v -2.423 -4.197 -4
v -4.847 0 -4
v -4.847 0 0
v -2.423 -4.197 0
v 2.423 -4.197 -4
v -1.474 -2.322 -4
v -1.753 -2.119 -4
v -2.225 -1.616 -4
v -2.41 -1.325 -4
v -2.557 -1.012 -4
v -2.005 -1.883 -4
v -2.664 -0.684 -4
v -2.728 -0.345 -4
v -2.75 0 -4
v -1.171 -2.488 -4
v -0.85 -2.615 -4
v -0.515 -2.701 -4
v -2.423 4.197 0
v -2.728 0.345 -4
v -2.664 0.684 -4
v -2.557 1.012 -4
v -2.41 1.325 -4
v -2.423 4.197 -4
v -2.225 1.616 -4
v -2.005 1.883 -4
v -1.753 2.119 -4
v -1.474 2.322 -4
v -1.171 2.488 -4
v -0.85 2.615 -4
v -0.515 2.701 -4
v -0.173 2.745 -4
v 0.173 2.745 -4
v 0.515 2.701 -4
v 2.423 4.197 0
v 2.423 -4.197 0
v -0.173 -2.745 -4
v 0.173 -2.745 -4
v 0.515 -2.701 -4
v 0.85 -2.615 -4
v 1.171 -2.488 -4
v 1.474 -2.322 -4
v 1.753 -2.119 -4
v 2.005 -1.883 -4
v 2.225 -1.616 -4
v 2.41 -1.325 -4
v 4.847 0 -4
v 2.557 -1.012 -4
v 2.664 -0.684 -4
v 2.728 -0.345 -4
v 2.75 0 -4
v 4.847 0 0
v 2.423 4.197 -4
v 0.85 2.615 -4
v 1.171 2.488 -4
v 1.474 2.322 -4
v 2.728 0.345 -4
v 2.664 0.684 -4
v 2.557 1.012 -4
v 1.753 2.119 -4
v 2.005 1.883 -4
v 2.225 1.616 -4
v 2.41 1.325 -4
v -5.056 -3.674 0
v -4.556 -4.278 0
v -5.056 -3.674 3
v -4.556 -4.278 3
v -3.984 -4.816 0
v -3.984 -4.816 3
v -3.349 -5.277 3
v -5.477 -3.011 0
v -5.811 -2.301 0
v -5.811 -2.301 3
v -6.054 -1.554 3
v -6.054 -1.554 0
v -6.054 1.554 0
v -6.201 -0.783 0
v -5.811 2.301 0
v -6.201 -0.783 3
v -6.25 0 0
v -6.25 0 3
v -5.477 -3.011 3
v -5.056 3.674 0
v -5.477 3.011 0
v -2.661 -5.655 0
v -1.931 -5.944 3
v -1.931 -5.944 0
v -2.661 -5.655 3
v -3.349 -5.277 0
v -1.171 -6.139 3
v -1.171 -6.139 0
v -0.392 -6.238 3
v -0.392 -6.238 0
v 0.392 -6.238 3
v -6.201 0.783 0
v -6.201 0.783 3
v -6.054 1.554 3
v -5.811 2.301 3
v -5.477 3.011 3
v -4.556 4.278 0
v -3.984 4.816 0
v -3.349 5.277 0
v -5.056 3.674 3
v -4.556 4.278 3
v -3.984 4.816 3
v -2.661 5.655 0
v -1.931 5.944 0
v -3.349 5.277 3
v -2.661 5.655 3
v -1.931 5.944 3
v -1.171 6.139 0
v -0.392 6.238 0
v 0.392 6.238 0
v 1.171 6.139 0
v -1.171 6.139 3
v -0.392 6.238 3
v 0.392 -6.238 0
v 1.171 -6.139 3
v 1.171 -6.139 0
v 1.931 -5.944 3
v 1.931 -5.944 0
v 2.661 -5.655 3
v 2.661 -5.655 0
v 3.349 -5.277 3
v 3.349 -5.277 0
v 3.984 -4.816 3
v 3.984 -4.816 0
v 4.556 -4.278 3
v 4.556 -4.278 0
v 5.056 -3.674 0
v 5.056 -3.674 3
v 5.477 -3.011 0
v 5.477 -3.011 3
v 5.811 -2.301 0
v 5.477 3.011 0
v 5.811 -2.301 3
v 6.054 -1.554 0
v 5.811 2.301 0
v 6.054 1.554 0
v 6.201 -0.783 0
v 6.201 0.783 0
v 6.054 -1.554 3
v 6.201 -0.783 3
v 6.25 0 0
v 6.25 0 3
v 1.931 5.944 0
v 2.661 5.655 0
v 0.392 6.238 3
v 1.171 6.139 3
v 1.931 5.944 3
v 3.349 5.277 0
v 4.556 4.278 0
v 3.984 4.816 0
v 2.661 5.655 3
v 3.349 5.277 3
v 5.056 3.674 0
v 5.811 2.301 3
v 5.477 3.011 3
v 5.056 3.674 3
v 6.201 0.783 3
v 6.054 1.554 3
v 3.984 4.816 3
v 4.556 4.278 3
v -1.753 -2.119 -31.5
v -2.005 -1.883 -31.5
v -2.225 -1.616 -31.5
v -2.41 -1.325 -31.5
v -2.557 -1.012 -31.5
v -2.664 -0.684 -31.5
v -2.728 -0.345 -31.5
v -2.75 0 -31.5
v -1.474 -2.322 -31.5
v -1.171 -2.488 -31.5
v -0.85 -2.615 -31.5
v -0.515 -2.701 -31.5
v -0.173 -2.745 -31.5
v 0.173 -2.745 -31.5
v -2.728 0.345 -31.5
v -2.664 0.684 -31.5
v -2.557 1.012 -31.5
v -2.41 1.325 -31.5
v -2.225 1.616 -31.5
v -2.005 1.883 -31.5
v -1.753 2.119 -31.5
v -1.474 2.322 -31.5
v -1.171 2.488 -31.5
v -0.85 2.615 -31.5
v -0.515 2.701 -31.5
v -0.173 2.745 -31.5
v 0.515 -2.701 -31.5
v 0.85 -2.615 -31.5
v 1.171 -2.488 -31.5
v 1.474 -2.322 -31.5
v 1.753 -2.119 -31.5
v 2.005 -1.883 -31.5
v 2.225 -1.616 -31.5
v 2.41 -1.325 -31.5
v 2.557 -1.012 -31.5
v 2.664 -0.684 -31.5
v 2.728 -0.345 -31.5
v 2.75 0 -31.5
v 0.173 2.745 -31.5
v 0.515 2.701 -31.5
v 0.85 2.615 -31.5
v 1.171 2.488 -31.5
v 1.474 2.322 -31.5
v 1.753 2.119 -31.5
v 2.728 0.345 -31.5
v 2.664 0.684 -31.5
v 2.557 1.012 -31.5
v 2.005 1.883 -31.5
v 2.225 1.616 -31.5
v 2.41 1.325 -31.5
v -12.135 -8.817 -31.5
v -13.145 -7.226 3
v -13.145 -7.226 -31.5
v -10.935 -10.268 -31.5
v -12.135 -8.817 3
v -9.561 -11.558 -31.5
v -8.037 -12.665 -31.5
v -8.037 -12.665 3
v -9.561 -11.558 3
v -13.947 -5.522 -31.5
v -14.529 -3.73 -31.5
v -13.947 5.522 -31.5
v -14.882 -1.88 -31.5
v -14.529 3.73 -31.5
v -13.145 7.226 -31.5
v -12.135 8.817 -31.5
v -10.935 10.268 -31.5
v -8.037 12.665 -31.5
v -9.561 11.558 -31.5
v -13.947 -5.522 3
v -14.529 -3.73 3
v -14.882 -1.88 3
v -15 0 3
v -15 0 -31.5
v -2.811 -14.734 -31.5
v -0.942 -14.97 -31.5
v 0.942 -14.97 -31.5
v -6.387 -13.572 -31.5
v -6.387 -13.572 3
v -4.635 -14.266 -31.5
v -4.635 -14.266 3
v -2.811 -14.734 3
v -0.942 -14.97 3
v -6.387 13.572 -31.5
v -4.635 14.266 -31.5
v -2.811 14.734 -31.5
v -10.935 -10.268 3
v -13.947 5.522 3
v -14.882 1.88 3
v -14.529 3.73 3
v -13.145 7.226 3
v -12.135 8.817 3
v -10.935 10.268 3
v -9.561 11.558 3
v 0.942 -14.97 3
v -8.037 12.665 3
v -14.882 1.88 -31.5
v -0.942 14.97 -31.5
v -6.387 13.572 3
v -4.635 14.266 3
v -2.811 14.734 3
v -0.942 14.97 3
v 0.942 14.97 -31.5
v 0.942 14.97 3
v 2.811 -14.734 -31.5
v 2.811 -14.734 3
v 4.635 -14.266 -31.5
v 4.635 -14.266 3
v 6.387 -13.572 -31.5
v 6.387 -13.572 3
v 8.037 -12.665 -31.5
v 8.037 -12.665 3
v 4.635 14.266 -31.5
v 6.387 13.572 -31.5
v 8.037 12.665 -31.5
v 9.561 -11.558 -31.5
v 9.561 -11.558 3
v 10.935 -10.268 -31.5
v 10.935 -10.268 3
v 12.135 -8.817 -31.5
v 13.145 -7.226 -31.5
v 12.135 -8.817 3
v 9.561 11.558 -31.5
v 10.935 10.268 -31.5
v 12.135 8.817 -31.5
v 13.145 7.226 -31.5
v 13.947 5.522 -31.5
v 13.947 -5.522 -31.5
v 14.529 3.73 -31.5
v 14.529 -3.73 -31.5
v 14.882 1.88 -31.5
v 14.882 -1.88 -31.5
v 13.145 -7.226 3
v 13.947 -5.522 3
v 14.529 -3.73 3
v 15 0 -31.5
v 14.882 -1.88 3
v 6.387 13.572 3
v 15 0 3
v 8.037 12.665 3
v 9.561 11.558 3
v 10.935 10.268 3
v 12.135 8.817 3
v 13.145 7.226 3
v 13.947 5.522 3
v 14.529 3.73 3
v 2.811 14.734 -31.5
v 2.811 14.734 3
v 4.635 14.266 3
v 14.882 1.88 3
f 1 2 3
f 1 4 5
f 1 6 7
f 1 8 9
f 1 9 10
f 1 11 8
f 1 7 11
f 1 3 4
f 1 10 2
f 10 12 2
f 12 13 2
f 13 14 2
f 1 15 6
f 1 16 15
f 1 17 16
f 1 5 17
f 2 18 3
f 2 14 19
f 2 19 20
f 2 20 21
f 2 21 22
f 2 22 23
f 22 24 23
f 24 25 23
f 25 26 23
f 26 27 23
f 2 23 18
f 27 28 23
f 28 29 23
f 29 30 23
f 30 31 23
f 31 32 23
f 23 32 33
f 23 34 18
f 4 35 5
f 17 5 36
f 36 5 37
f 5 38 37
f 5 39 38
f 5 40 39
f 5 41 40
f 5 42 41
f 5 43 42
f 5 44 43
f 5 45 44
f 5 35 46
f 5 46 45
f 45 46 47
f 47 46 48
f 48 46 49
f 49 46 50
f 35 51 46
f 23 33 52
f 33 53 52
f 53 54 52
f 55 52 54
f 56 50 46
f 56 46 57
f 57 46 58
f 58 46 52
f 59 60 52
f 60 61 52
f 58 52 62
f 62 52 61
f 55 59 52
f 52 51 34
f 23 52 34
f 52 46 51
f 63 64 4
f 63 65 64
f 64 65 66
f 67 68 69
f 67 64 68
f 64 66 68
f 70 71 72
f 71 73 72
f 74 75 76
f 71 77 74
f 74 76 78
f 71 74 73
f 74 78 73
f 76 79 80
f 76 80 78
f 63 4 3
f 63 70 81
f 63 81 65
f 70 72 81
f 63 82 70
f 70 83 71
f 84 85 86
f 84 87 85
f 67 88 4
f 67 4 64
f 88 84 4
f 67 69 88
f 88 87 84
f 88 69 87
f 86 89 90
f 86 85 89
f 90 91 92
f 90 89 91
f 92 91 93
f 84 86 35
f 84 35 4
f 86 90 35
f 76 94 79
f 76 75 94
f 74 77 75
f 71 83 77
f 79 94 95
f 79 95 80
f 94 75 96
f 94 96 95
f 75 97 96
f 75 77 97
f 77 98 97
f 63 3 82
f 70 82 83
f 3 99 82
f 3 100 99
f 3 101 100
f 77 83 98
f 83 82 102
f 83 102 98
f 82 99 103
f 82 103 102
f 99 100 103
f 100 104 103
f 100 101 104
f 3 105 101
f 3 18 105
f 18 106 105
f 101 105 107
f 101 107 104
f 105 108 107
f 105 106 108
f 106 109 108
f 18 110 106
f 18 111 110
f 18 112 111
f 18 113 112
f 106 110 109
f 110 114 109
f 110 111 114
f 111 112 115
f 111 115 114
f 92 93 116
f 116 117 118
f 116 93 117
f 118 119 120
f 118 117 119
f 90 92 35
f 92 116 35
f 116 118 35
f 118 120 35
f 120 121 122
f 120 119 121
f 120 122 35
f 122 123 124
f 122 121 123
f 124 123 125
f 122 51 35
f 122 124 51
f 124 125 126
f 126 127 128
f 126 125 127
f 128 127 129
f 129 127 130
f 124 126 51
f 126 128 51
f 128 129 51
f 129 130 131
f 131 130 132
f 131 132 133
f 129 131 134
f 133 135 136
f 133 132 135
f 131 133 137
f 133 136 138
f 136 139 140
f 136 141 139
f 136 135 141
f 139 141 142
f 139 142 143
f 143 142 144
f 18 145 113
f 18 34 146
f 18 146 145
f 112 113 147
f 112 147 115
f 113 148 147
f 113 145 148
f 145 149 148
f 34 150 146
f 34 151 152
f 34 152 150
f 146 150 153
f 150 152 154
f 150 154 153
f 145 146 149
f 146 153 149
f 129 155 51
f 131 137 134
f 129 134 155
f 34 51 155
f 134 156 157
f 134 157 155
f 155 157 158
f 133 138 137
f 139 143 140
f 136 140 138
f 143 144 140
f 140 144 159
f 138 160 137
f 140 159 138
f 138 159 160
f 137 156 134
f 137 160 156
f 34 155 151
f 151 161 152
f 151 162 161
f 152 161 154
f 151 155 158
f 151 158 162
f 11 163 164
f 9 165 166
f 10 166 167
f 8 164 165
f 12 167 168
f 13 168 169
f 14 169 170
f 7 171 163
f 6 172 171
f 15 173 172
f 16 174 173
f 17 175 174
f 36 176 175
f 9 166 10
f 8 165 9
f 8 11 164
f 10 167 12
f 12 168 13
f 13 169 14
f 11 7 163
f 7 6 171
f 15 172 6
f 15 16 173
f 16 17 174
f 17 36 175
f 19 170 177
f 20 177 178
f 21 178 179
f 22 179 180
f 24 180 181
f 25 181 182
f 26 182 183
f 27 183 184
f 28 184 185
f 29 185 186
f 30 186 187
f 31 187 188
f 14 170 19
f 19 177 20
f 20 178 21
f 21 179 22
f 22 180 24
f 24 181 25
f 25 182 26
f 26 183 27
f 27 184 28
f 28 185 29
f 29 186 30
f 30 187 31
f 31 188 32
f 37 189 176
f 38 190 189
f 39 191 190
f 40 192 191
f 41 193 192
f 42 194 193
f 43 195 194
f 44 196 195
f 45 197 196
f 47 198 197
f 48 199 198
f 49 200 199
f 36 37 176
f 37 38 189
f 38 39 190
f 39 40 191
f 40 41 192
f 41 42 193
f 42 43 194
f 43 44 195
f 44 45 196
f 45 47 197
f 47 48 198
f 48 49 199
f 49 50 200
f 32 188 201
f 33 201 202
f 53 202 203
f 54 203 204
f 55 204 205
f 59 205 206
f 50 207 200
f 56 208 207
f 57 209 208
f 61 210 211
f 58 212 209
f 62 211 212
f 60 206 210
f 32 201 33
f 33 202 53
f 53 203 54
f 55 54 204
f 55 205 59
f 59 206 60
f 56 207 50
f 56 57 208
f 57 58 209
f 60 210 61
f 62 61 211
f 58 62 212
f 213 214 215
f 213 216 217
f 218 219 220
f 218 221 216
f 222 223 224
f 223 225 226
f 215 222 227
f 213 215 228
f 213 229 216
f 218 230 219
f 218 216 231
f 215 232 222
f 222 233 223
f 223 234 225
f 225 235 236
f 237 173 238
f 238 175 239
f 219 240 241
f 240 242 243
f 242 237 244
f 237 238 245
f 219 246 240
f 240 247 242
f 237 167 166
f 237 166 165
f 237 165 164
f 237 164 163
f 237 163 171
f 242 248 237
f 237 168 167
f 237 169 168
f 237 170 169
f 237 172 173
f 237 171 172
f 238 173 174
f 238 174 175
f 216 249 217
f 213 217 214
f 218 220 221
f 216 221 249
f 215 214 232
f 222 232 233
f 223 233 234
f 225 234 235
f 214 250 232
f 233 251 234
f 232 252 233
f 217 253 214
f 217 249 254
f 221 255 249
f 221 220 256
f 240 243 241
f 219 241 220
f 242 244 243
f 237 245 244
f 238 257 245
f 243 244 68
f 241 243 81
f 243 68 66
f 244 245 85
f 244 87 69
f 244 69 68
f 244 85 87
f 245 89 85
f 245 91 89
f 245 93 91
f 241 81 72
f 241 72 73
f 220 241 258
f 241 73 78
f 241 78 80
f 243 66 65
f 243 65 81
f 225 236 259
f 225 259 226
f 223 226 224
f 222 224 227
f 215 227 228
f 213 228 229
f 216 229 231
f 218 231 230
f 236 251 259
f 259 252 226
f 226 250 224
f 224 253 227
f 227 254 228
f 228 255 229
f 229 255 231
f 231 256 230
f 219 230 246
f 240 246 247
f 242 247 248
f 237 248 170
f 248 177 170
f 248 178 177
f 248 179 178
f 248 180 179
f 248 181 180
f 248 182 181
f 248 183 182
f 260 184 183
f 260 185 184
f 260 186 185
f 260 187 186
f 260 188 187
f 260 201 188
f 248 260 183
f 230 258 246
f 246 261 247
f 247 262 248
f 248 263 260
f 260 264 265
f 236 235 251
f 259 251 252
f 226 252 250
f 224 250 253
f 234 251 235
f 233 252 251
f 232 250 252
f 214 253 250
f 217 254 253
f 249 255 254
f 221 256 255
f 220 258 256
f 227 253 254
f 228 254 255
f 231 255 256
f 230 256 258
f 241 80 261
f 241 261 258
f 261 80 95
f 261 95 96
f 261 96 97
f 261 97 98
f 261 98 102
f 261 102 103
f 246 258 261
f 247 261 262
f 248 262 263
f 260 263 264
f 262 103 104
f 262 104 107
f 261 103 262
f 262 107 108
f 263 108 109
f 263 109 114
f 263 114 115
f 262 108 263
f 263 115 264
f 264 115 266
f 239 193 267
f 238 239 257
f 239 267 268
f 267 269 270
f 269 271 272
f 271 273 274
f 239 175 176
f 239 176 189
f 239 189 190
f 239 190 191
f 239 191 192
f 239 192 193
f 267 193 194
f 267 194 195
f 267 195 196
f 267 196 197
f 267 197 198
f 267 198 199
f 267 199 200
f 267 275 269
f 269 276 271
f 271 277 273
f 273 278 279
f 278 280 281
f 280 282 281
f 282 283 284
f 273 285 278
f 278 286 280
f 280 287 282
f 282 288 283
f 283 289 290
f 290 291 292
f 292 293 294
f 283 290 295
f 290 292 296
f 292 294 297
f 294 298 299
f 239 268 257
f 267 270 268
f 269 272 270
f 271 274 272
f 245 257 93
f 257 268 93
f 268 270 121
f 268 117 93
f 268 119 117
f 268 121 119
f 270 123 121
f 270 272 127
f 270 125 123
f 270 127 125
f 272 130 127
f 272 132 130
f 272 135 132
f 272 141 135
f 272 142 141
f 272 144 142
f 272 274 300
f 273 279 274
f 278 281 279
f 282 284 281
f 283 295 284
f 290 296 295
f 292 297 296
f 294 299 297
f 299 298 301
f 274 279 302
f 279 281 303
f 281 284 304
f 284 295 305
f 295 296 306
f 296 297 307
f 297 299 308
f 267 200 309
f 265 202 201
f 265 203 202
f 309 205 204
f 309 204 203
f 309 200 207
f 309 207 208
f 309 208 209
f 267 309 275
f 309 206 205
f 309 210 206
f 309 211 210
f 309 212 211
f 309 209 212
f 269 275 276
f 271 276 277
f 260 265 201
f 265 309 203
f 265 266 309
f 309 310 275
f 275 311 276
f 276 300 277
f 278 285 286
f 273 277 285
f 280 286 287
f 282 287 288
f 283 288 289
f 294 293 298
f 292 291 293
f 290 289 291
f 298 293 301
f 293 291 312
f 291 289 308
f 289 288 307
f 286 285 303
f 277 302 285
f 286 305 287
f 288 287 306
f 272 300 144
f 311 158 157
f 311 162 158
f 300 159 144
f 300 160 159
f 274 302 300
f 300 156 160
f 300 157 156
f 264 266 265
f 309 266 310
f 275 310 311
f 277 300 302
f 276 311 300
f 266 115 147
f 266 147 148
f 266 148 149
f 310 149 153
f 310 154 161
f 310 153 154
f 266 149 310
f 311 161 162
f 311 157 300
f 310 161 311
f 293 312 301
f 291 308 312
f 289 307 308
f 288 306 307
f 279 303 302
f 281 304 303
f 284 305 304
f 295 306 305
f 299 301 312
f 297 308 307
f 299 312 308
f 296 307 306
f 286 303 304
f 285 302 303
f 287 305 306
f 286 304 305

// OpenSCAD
$fn = 50;


difference() {
	union() {
		translate(v = [0, 0, -31.5000000000]) {
			cylinder(h = 34.5000000000, r = 15.0000000000);
		}
	}
	union() {
		translate(v = [0, 0, 0]) {
			rotate(a = [0, 0, 0]) {
				difference() {
					union() {
						translate(v = [0, 0, -4]) {
							linear_extrude(height = 4) {
								polygon(points = [[4.8468000000, 0.0000000000], [2.4234000000, 4.1974519271], [-2.4234000000, 4.1974519271], [-4.8468000000, 0.0000000000], [-2.4234000000, -4.1974519271], [2.4234000000, -4.1974519271]]);
							}
						}
					}
					union();
				}
			}
		}
		#cylinder(h = 3, r = 6.2500000000);
		#translate(v = [0, 0, -100.0000000000]) {
			cylinder(h = 200, r = 2.7500000000);
		}
	}
}
